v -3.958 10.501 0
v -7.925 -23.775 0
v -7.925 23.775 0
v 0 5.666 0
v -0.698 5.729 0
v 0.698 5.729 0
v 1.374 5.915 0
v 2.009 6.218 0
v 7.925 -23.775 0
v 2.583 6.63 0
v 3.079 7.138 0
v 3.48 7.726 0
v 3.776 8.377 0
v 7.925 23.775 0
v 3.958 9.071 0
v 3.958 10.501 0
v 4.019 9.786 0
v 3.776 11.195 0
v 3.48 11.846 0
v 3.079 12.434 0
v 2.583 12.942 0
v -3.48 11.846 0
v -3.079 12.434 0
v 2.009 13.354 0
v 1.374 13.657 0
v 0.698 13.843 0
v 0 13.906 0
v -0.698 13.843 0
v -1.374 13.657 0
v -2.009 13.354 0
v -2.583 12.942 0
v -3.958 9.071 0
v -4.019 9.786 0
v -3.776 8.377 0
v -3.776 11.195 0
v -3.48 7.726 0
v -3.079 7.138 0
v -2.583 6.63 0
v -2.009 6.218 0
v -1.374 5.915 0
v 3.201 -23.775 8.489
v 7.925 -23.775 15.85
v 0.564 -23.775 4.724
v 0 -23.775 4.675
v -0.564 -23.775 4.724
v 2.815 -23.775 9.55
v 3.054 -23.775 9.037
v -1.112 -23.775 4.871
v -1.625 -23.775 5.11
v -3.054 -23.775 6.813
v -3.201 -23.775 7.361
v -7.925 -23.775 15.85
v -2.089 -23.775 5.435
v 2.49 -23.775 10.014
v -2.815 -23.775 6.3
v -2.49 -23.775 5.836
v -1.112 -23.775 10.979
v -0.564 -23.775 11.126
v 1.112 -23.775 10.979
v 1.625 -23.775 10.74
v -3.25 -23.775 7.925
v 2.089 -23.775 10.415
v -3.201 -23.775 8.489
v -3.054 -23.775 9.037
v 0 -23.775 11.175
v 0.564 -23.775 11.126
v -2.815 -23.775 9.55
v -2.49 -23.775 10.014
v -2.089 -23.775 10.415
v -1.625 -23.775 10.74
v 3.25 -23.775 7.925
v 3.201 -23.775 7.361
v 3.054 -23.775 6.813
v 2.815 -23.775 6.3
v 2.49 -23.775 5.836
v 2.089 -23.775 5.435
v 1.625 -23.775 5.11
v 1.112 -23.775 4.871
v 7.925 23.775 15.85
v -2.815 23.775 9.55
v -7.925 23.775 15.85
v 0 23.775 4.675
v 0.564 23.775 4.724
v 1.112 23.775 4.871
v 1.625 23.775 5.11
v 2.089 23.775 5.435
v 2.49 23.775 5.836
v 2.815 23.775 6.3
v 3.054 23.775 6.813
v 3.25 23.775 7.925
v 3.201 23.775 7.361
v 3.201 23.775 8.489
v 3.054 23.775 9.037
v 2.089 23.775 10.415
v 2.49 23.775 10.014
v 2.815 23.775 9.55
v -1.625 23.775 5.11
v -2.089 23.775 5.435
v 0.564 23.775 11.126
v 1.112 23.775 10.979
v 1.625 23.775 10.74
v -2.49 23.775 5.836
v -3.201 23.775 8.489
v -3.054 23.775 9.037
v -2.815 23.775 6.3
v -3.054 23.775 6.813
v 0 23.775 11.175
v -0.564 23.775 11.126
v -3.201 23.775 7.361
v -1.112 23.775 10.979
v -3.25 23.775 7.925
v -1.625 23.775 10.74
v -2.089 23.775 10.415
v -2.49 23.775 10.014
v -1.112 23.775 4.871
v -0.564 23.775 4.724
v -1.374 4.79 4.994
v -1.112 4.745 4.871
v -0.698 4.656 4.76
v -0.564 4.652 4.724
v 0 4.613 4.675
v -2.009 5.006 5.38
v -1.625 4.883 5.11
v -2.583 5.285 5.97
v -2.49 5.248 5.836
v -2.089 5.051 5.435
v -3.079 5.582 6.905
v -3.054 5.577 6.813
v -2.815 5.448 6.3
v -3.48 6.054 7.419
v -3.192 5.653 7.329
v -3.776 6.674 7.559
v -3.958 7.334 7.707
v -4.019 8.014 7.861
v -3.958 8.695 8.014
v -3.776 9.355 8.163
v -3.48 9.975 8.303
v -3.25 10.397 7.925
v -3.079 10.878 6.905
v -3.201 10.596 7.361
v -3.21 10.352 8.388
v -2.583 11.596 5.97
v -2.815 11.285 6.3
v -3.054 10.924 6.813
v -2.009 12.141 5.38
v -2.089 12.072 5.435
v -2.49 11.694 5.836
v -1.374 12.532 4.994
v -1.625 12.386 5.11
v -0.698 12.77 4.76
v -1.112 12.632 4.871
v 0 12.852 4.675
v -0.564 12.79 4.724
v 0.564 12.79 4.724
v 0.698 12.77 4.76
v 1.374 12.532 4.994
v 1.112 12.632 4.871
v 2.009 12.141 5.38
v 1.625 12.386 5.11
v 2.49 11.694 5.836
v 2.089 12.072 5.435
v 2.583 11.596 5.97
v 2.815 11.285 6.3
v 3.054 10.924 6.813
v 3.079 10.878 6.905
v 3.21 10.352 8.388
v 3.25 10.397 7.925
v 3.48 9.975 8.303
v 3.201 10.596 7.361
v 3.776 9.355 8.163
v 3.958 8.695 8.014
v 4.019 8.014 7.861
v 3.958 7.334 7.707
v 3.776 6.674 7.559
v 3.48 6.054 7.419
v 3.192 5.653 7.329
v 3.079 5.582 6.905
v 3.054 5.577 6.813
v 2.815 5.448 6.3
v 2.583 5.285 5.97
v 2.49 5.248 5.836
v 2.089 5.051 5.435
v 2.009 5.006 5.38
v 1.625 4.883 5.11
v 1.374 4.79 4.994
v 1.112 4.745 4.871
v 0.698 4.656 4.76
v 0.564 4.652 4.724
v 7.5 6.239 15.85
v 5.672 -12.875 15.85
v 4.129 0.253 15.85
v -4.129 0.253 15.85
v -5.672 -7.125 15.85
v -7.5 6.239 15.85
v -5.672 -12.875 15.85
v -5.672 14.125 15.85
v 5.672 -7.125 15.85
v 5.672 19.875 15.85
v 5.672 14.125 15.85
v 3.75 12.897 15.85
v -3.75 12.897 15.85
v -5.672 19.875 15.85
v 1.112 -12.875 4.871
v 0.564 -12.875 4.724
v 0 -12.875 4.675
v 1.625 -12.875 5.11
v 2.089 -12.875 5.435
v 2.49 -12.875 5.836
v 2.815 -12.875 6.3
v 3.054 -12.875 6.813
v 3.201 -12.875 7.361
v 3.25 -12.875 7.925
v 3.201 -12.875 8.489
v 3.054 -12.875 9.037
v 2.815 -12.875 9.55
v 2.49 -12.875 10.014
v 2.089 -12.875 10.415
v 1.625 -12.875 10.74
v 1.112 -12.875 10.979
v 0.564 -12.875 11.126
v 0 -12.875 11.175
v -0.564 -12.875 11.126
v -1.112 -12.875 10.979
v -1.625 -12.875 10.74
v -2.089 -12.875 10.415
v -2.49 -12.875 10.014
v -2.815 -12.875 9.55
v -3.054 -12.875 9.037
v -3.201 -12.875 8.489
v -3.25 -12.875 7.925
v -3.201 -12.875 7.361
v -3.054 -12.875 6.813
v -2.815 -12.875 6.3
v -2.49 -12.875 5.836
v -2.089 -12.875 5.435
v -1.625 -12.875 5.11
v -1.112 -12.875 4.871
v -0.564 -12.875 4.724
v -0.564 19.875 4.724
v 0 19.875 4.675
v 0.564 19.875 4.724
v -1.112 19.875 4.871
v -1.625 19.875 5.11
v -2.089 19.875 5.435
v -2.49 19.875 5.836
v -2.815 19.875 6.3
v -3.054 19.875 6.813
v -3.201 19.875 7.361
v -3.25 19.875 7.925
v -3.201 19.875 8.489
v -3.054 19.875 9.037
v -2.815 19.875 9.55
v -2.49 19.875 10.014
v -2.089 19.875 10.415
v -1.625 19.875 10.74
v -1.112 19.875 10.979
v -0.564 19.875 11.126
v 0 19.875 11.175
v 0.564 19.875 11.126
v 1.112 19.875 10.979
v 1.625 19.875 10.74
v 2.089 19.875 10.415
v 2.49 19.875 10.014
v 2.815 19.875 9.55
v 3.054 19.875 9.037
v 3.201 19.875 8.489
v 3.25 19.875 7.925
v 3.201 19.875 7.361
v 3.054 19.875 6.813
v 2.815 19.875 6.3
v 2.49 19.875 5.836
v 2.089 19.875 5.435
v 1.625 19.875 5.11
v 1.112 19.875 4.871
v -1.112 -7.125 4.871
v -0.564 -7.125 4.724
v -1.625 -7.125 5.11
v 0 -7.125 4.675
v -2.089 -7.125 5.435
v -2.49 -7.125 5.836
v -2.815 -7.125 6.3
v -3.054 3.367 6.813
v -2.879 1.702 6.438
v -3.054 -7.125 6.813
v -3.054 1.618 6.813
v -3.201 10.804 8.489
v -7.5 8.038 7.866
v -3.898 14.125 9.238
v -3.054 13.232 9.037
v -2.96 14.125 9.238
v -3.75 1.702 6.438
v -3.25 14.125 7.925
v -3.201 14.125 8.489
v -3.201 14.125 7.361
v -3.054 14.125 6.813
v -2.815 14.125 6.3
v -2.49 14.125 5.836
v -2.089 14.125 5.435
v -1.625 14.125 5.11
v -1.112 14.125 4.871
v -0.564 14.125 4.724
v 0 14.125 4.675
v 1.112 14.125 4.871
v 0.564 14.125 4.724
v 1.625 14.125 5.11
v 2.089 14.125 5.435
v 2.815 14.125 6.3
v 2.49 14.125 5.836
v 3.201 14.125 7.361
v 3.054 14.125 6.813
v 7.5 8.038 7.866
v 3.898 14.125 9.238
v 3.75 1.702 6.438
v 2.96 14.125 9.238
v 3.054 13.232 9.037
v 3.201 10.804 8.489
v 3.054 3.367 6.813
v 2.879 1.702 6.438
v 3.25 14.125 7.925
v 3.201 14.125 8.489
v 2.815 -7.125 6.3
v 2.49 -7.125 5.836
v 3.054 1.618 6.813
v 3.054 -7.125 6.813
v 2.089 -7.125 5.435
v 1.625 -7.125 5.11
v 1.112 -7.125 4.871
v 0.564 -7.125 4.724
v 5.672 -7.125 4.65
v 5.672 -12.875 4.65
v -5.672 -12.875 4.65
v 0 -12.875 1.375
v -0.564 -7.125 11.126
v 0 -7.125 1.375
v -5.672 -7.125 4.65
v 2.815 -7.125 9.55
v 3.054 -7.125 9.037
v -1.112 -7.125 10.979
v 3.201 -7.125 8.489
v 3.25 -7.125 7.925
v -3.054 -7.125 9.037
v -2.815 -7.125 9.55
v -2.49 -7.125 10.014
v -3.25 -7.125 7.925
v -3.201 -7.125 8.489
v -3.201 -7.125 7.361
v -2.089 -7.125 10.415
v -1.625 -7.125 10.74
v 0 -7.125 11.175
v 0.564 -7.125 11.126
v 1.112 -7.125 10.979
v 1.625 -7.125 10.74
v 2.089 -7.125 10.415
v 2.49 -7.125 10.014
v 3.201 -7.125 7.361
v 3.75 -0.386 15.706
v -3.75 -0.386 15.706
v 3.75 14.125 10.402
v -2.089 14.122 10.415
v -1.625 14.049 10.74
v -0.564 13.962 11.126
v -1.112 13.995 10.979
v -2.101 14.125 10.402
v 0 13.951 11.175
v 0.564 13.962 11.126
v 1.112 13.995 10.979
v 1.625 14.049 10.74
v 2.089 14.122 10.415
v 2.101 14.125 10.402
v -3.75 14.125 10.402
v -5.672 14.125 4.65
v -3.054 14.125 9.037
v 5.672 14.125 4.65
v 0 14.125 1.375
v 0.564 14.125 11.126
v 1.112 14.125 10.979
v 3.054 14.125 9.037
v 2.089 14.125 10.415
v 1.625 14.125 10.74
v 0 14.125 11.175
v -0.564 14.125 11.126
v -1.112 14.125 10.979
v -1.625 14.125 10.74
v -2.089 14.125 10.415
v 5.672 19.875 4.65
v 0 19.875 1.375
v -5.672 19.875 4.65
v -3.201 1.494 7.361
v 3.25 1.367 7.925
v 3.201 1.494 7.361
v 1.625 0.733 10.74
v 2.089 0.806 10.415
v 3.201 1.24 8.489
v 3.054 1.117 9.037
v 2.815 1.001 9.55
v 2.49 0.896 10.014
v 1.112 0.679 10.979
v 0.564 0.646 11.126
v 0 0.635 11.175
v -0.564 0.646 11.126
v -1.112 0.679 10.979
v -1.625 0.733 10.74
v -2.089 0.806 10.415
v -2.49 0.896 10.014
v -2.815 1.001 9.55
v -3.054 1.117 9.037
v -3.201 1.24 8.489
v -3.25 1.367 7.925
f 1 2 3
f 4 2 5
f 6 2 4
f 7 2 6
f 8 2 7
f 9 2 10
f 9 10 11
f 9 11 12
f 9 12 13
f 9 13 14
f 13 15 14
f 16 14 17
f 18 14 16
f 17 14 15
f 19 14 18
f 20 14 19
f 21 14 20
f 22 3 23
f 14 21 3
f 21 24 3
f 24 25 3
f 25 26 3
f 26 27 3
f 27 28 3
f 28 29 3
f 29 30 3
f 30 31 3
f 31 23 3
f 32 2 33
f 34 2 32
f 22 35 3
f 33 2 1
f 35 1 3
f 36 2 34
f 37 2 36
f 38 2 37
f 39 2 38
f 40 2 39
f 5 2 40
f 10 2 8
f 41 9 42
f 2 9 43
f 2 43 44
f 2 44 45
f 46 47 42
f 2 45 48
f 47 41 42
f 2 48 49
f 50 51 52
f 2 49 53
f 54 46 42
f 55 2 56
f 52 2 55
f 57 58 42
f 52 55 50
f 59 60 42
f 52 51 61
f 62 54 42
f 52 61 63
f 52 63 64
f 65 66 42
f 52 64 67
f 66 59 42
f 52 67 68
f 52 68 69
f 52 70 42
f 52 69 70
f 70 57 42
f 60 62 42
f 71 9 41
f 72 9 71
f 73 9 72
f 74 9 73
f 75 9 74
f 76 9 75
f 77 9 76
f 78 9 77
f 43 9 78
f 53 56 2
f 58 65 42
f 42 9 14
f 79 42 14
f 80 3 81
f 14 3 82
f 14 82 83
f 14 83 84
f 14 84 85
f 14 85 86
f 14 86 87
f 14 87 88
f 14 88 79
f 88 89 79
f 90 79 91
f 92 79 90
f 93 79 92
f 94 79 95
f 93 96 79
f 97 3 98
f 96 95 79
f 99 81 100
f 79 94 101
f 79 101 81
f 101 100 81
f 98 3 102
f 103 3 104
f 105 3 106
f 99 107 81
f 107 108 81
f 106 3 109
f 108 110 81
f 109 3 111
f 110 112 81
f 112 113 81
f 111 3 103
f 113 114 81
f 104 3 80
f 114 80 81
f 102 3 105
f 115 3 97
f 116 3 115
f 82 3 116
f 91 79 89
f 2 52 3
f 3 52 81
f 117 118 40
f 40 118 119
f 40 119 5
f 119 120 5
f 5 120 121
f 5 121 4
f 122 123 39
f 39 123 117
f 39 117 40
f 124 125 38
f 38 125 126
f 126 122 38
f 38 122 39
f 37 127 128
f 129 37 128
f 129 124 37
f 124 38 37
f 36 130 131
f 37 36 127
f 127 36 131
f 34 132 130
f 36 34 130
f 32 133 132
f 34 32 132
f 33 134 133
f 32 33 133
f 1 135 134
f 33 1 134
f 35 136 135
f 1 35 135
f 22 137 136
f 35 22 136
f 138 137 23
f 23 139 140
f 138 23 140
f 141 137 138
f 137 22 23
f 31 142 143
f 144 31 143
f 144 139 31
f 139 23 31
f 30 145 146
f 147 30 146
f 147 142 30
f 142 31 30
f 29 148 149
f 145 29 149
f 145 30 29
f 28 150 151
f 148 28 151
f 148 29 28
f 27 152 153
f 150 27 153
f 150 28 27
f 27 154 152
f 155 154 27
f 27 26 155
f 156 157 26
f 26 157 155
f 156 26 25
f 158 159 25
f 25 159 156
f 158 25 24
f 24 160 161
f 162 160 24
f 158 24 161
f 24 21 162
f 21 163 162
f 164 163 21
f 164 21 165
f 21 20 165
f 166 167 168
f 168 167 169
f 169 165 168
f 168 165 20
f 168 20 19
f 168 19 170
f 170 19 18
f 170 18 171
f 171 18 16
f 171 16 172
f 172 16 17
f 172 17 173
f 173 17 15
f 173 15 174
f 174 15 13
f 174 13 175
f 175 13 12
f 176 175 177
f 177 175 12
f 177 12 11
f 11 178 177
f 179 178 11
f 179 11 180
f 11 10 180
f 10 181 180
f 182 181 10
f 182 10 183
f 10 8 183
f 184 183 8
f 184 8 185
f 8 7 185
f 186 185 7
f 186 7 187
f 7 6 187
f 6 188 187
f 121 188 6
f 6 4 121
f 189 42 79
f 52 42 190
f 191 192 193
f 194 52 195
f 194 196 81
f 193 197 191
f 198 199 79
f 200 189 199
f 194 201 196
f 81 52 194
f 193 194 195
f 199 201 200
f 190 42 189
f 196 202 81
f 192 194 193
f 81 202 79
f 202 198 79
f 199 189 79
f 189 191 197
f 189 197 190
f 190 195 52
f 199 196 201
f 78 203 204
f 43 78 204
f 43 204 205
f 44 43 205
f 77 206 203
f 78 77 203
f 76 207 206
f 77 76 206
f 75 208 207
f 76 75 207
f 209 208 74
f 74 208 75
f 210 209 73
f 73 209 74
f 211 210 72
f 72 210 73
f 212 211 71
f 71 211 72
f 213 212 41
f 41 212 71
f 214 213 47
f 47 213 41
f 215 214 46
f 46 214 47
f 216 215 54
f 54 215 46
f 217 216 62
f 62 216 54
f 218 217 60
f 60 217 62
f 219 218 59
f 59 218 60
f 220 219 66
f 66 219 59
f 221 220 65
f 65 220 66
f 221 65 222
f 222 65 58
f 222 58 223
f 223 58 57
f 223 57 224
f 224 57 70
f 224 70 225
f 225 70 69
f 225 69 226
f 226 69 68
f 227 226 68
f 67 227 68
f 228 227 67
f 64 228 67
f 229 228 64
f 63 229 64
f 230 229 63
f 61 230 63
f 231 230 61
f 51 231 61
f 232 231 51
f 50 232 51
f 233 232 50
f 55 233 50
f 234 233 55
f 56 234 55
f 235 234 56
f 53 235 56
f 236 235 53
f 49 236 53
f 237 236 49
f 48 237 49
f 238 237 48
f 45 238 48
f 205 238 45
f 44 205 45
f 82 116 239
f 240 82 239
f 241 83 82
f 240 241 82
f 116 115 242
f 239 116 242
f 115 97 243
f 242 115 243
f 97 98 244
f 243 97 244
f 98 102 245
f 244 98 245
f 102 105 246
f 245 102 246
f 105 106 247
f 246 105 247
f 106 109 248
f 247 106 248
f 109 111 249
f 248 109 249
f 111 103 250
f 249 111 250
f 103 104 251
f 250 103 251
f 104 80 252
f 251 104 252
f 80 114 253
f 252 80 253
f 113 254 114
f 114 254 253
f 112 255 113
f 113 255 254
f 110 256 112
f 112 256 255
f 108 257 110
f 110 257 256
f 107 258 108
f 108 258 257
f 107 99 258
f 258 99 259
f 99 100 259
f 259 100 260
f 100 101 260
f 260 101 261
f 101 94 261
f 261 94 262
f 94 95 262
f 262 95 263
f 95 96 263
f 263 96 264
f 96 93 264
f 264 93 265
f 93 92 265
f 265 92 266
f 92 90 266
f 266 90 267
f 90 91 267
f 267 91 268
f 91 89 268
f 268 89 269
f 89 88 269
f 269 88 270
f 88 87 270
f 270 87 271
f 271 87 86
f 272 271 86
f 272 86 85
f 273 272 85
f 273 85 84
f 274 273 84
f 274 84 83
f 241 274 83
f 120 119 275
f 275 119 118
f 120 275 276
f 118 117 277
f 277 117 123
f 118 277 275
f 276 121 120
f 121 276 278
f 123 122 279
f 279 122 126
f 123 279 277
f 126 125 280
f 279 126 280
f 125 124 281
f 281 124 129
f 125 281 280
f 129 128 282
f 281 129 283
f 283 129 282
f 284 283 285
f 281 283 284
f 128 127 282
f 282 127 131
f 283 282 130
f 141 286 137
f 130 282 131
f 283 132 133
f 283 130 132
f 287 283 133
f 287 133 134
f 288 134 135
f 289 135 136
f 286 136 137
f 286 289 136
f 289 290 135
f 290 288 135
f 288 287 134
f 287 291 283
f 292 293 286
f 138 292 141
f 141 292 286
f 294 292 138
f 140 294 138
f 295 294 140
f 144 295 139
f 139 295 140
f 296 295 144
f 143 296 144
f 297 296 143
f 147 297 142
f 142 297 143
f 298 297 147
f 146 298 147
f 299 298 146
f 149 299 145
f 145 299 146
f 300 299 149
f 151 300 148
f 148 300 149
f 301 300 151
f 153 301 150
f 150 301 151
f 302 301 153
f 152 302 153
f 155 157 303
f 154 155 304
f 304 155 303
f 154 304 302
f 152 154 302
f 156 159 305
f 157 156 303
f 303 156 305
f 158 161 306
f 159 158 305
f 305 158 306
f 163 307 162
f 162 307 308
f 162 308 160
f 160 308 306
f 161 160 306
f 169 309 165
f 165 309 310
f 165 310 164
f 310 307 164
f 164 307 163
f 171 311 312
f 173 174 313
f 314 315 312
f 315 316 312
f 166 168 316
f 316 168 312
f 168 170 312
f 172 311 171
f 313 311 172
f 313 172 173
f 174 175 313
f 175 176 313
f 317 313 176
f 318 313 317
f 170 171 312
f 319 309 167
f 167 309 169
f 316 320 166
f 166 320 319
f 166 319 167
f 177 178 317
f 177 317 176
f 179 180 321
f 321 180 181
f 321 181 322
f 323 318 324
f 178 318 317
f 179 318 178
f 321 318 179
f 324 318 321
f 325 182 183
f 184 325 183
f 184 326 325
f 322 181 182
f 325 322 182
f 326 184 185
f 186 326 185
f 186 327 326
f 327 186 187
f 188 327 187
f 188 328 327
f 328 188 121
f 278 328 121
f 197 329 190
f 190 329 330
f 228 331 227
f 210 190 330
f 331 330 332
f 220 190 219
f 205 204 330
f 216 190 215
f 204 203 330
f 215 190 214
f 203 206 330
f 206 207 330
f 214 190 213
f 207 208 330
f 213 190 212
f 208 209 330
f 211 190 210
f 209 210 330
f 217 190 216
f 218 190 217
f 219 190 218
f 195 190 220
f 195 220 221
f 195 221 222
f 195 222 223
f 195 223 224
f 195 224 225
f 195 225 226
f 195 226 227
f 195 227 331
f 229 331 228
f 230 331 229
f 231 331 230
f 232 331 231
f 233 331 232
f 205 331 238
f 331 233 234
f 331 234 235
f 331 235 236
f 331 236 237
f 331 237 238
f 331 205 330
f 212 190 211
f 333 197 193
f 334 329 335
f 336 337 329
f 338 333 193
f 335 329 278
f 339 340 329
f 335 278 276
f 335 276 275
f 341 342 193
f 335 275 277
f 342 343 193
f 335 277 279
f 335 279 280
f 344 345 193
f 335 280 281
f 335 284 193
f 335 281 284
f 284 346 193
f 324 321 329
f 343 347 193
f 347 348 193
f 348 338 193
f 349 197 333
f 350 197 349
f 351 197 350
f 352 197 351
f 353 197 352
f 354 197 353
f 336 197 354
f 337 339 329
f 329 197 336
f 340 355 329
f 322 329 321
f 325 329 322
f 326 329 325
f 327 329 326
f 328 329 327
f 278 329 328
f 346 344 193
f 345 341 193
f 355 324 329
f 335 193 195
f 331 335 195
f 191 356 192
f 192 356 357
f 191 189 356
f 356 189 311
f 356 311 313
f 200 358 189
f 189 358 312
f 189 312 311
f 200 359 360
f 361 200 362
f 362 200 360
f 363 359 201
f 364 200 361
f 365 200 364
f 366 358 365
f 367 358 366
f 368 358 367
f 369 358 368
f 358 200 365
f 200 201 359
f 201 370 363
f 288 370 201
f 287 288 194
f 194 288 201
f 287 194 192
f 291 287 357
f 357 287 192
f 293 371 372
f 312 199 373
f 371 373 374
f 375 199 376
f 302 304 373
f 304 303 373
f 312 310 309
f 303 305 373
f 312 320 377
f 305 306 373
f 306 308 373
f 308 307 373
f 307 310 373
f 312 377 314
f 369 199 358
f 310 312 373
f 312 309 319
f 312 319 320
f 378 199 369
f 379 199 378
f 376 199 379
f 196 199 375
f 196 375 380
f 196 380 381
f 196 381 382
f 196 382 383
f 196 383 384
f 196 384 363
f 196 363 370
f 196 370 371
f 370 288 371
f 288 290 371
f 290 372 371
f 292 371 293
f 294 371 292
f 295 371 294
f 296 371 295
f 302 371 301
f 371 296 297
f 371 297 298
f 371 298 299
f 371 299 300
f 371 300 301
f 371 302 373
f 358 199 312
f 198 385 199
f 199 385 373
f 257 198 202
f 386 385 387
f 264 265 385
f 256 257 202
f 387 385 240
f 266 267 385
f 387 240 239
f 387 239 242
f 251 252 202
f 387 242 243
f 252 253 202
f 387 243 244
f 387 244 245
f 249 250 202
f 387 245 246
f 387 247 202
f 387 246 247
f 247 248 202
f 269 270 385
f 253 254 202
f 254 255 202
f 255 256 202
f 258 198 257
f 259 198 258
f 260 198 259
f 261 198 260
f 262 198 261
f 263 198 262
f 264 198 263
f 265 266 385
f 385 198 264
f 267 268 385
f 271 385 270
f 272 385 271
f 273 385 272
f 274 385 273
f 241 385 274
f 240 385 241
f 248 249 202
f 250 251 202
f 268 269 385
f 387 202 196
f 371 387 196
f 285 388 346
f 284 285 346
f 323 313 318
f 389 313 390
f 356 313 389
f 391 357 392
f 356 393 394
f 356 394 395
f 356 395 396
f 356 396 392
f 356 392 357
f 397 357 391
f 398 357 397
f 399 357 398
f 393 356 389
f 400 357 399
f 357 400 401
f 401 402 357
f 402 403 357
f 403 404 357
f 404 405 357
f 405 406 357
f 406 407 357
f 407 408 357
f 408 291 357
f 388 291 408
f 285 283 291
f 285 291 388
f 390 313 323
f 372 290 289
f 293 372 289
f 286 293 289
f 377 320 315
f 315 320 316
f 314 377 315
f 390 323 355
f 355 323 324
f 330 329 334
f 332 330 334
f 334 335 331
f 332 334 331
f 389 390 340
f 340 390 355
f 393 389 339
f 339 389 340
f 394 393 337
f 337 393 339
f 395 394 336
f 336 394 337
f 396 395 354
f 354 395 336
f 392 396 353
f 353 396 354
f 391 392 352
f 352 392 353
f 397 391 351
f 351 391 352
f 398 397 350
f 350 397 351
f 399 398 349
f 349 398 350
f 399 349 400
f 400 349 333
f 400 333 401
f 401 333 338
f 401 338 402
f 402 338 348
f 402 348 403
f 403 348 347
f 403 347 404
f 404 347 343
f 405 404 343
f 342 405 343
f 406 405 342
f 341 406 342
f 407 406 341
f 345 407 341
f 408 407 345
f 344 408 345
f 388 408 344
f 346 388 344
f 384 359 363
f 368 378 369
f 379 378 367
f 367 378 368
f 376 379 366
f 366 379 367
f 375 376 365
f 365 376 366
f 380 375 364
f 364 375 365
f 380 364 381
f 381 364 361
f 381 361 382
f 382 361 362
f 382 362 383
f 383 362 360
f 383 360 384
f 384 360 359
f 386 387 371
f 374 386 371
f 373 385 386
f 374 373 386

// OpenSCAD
// inside 15.85mm (interior) aluminium bar,
// 1/4in nuts insert to let 1/4in bolts hug 5/16in rod
// perhaps epoxy the whole thing in place...
// gorrilla-glue worked well - Joe

interior=15.85;
echo("interior dimension of square-tube =", interior);
rods=(5/16)*25.4+.1;
rodsnut=7.5;
echo("angled rods diameter =", rods, " nut radius=", rodsnut);
grip=(1/4)*25.4+.15;
gripnut= 6.55;
echo("gripper bolt diameter=", grip, " nut radius=", gripnut);

module barRod(ang=12.7){
	echo("incident angle of rod=",ang, "deg");
	nutH = 6.7;
	nutoff=sin(ang)*(interior/2 - nutH/2);
	difference(){
	rotate([90,0,0])
		cube([interior,interior,interior*3], center=true);

	translate([0,8,0]) rotate([ang,90,0])
		cylinder(r=rods/2, h=interior*3, center=true, $fn=36);
	translate([(interior/2 - nutH/2),8-nutoff,0]) rotate([ang,90,0])
		cylinder(r=rodsnut, h=9.5, center=true, $fn=6);
	translate([0,0,0]) rotate([90,0,0])
		cylinder(r=grip/2, h=interior*3, center=true, $fn=36);
	hull(){
		translate([0,-10,0]) rotate([90,0,0])
			cylinder(r=gripnut, h=5.75, center=true, $fn=6);
		translate([12,-10,0]) rotate([90,0,0])
			cylinder(r=gripnut, h=5.75, center=true, $fn=6);
	}
	hull(){
		translate([0,17,0]) rotate([90,0,0])
			cylinder(r=gripnut, h=5.75, center=true, $fn=6);
		translate([12,17,0]) rotate([90,0,0])
			cylinder(r=gripnut, h=5.75, center=true, $fn=6);
	}
	}
}

translate([0,0,interior/2]) rotate([0,-90,0])
barRod();
